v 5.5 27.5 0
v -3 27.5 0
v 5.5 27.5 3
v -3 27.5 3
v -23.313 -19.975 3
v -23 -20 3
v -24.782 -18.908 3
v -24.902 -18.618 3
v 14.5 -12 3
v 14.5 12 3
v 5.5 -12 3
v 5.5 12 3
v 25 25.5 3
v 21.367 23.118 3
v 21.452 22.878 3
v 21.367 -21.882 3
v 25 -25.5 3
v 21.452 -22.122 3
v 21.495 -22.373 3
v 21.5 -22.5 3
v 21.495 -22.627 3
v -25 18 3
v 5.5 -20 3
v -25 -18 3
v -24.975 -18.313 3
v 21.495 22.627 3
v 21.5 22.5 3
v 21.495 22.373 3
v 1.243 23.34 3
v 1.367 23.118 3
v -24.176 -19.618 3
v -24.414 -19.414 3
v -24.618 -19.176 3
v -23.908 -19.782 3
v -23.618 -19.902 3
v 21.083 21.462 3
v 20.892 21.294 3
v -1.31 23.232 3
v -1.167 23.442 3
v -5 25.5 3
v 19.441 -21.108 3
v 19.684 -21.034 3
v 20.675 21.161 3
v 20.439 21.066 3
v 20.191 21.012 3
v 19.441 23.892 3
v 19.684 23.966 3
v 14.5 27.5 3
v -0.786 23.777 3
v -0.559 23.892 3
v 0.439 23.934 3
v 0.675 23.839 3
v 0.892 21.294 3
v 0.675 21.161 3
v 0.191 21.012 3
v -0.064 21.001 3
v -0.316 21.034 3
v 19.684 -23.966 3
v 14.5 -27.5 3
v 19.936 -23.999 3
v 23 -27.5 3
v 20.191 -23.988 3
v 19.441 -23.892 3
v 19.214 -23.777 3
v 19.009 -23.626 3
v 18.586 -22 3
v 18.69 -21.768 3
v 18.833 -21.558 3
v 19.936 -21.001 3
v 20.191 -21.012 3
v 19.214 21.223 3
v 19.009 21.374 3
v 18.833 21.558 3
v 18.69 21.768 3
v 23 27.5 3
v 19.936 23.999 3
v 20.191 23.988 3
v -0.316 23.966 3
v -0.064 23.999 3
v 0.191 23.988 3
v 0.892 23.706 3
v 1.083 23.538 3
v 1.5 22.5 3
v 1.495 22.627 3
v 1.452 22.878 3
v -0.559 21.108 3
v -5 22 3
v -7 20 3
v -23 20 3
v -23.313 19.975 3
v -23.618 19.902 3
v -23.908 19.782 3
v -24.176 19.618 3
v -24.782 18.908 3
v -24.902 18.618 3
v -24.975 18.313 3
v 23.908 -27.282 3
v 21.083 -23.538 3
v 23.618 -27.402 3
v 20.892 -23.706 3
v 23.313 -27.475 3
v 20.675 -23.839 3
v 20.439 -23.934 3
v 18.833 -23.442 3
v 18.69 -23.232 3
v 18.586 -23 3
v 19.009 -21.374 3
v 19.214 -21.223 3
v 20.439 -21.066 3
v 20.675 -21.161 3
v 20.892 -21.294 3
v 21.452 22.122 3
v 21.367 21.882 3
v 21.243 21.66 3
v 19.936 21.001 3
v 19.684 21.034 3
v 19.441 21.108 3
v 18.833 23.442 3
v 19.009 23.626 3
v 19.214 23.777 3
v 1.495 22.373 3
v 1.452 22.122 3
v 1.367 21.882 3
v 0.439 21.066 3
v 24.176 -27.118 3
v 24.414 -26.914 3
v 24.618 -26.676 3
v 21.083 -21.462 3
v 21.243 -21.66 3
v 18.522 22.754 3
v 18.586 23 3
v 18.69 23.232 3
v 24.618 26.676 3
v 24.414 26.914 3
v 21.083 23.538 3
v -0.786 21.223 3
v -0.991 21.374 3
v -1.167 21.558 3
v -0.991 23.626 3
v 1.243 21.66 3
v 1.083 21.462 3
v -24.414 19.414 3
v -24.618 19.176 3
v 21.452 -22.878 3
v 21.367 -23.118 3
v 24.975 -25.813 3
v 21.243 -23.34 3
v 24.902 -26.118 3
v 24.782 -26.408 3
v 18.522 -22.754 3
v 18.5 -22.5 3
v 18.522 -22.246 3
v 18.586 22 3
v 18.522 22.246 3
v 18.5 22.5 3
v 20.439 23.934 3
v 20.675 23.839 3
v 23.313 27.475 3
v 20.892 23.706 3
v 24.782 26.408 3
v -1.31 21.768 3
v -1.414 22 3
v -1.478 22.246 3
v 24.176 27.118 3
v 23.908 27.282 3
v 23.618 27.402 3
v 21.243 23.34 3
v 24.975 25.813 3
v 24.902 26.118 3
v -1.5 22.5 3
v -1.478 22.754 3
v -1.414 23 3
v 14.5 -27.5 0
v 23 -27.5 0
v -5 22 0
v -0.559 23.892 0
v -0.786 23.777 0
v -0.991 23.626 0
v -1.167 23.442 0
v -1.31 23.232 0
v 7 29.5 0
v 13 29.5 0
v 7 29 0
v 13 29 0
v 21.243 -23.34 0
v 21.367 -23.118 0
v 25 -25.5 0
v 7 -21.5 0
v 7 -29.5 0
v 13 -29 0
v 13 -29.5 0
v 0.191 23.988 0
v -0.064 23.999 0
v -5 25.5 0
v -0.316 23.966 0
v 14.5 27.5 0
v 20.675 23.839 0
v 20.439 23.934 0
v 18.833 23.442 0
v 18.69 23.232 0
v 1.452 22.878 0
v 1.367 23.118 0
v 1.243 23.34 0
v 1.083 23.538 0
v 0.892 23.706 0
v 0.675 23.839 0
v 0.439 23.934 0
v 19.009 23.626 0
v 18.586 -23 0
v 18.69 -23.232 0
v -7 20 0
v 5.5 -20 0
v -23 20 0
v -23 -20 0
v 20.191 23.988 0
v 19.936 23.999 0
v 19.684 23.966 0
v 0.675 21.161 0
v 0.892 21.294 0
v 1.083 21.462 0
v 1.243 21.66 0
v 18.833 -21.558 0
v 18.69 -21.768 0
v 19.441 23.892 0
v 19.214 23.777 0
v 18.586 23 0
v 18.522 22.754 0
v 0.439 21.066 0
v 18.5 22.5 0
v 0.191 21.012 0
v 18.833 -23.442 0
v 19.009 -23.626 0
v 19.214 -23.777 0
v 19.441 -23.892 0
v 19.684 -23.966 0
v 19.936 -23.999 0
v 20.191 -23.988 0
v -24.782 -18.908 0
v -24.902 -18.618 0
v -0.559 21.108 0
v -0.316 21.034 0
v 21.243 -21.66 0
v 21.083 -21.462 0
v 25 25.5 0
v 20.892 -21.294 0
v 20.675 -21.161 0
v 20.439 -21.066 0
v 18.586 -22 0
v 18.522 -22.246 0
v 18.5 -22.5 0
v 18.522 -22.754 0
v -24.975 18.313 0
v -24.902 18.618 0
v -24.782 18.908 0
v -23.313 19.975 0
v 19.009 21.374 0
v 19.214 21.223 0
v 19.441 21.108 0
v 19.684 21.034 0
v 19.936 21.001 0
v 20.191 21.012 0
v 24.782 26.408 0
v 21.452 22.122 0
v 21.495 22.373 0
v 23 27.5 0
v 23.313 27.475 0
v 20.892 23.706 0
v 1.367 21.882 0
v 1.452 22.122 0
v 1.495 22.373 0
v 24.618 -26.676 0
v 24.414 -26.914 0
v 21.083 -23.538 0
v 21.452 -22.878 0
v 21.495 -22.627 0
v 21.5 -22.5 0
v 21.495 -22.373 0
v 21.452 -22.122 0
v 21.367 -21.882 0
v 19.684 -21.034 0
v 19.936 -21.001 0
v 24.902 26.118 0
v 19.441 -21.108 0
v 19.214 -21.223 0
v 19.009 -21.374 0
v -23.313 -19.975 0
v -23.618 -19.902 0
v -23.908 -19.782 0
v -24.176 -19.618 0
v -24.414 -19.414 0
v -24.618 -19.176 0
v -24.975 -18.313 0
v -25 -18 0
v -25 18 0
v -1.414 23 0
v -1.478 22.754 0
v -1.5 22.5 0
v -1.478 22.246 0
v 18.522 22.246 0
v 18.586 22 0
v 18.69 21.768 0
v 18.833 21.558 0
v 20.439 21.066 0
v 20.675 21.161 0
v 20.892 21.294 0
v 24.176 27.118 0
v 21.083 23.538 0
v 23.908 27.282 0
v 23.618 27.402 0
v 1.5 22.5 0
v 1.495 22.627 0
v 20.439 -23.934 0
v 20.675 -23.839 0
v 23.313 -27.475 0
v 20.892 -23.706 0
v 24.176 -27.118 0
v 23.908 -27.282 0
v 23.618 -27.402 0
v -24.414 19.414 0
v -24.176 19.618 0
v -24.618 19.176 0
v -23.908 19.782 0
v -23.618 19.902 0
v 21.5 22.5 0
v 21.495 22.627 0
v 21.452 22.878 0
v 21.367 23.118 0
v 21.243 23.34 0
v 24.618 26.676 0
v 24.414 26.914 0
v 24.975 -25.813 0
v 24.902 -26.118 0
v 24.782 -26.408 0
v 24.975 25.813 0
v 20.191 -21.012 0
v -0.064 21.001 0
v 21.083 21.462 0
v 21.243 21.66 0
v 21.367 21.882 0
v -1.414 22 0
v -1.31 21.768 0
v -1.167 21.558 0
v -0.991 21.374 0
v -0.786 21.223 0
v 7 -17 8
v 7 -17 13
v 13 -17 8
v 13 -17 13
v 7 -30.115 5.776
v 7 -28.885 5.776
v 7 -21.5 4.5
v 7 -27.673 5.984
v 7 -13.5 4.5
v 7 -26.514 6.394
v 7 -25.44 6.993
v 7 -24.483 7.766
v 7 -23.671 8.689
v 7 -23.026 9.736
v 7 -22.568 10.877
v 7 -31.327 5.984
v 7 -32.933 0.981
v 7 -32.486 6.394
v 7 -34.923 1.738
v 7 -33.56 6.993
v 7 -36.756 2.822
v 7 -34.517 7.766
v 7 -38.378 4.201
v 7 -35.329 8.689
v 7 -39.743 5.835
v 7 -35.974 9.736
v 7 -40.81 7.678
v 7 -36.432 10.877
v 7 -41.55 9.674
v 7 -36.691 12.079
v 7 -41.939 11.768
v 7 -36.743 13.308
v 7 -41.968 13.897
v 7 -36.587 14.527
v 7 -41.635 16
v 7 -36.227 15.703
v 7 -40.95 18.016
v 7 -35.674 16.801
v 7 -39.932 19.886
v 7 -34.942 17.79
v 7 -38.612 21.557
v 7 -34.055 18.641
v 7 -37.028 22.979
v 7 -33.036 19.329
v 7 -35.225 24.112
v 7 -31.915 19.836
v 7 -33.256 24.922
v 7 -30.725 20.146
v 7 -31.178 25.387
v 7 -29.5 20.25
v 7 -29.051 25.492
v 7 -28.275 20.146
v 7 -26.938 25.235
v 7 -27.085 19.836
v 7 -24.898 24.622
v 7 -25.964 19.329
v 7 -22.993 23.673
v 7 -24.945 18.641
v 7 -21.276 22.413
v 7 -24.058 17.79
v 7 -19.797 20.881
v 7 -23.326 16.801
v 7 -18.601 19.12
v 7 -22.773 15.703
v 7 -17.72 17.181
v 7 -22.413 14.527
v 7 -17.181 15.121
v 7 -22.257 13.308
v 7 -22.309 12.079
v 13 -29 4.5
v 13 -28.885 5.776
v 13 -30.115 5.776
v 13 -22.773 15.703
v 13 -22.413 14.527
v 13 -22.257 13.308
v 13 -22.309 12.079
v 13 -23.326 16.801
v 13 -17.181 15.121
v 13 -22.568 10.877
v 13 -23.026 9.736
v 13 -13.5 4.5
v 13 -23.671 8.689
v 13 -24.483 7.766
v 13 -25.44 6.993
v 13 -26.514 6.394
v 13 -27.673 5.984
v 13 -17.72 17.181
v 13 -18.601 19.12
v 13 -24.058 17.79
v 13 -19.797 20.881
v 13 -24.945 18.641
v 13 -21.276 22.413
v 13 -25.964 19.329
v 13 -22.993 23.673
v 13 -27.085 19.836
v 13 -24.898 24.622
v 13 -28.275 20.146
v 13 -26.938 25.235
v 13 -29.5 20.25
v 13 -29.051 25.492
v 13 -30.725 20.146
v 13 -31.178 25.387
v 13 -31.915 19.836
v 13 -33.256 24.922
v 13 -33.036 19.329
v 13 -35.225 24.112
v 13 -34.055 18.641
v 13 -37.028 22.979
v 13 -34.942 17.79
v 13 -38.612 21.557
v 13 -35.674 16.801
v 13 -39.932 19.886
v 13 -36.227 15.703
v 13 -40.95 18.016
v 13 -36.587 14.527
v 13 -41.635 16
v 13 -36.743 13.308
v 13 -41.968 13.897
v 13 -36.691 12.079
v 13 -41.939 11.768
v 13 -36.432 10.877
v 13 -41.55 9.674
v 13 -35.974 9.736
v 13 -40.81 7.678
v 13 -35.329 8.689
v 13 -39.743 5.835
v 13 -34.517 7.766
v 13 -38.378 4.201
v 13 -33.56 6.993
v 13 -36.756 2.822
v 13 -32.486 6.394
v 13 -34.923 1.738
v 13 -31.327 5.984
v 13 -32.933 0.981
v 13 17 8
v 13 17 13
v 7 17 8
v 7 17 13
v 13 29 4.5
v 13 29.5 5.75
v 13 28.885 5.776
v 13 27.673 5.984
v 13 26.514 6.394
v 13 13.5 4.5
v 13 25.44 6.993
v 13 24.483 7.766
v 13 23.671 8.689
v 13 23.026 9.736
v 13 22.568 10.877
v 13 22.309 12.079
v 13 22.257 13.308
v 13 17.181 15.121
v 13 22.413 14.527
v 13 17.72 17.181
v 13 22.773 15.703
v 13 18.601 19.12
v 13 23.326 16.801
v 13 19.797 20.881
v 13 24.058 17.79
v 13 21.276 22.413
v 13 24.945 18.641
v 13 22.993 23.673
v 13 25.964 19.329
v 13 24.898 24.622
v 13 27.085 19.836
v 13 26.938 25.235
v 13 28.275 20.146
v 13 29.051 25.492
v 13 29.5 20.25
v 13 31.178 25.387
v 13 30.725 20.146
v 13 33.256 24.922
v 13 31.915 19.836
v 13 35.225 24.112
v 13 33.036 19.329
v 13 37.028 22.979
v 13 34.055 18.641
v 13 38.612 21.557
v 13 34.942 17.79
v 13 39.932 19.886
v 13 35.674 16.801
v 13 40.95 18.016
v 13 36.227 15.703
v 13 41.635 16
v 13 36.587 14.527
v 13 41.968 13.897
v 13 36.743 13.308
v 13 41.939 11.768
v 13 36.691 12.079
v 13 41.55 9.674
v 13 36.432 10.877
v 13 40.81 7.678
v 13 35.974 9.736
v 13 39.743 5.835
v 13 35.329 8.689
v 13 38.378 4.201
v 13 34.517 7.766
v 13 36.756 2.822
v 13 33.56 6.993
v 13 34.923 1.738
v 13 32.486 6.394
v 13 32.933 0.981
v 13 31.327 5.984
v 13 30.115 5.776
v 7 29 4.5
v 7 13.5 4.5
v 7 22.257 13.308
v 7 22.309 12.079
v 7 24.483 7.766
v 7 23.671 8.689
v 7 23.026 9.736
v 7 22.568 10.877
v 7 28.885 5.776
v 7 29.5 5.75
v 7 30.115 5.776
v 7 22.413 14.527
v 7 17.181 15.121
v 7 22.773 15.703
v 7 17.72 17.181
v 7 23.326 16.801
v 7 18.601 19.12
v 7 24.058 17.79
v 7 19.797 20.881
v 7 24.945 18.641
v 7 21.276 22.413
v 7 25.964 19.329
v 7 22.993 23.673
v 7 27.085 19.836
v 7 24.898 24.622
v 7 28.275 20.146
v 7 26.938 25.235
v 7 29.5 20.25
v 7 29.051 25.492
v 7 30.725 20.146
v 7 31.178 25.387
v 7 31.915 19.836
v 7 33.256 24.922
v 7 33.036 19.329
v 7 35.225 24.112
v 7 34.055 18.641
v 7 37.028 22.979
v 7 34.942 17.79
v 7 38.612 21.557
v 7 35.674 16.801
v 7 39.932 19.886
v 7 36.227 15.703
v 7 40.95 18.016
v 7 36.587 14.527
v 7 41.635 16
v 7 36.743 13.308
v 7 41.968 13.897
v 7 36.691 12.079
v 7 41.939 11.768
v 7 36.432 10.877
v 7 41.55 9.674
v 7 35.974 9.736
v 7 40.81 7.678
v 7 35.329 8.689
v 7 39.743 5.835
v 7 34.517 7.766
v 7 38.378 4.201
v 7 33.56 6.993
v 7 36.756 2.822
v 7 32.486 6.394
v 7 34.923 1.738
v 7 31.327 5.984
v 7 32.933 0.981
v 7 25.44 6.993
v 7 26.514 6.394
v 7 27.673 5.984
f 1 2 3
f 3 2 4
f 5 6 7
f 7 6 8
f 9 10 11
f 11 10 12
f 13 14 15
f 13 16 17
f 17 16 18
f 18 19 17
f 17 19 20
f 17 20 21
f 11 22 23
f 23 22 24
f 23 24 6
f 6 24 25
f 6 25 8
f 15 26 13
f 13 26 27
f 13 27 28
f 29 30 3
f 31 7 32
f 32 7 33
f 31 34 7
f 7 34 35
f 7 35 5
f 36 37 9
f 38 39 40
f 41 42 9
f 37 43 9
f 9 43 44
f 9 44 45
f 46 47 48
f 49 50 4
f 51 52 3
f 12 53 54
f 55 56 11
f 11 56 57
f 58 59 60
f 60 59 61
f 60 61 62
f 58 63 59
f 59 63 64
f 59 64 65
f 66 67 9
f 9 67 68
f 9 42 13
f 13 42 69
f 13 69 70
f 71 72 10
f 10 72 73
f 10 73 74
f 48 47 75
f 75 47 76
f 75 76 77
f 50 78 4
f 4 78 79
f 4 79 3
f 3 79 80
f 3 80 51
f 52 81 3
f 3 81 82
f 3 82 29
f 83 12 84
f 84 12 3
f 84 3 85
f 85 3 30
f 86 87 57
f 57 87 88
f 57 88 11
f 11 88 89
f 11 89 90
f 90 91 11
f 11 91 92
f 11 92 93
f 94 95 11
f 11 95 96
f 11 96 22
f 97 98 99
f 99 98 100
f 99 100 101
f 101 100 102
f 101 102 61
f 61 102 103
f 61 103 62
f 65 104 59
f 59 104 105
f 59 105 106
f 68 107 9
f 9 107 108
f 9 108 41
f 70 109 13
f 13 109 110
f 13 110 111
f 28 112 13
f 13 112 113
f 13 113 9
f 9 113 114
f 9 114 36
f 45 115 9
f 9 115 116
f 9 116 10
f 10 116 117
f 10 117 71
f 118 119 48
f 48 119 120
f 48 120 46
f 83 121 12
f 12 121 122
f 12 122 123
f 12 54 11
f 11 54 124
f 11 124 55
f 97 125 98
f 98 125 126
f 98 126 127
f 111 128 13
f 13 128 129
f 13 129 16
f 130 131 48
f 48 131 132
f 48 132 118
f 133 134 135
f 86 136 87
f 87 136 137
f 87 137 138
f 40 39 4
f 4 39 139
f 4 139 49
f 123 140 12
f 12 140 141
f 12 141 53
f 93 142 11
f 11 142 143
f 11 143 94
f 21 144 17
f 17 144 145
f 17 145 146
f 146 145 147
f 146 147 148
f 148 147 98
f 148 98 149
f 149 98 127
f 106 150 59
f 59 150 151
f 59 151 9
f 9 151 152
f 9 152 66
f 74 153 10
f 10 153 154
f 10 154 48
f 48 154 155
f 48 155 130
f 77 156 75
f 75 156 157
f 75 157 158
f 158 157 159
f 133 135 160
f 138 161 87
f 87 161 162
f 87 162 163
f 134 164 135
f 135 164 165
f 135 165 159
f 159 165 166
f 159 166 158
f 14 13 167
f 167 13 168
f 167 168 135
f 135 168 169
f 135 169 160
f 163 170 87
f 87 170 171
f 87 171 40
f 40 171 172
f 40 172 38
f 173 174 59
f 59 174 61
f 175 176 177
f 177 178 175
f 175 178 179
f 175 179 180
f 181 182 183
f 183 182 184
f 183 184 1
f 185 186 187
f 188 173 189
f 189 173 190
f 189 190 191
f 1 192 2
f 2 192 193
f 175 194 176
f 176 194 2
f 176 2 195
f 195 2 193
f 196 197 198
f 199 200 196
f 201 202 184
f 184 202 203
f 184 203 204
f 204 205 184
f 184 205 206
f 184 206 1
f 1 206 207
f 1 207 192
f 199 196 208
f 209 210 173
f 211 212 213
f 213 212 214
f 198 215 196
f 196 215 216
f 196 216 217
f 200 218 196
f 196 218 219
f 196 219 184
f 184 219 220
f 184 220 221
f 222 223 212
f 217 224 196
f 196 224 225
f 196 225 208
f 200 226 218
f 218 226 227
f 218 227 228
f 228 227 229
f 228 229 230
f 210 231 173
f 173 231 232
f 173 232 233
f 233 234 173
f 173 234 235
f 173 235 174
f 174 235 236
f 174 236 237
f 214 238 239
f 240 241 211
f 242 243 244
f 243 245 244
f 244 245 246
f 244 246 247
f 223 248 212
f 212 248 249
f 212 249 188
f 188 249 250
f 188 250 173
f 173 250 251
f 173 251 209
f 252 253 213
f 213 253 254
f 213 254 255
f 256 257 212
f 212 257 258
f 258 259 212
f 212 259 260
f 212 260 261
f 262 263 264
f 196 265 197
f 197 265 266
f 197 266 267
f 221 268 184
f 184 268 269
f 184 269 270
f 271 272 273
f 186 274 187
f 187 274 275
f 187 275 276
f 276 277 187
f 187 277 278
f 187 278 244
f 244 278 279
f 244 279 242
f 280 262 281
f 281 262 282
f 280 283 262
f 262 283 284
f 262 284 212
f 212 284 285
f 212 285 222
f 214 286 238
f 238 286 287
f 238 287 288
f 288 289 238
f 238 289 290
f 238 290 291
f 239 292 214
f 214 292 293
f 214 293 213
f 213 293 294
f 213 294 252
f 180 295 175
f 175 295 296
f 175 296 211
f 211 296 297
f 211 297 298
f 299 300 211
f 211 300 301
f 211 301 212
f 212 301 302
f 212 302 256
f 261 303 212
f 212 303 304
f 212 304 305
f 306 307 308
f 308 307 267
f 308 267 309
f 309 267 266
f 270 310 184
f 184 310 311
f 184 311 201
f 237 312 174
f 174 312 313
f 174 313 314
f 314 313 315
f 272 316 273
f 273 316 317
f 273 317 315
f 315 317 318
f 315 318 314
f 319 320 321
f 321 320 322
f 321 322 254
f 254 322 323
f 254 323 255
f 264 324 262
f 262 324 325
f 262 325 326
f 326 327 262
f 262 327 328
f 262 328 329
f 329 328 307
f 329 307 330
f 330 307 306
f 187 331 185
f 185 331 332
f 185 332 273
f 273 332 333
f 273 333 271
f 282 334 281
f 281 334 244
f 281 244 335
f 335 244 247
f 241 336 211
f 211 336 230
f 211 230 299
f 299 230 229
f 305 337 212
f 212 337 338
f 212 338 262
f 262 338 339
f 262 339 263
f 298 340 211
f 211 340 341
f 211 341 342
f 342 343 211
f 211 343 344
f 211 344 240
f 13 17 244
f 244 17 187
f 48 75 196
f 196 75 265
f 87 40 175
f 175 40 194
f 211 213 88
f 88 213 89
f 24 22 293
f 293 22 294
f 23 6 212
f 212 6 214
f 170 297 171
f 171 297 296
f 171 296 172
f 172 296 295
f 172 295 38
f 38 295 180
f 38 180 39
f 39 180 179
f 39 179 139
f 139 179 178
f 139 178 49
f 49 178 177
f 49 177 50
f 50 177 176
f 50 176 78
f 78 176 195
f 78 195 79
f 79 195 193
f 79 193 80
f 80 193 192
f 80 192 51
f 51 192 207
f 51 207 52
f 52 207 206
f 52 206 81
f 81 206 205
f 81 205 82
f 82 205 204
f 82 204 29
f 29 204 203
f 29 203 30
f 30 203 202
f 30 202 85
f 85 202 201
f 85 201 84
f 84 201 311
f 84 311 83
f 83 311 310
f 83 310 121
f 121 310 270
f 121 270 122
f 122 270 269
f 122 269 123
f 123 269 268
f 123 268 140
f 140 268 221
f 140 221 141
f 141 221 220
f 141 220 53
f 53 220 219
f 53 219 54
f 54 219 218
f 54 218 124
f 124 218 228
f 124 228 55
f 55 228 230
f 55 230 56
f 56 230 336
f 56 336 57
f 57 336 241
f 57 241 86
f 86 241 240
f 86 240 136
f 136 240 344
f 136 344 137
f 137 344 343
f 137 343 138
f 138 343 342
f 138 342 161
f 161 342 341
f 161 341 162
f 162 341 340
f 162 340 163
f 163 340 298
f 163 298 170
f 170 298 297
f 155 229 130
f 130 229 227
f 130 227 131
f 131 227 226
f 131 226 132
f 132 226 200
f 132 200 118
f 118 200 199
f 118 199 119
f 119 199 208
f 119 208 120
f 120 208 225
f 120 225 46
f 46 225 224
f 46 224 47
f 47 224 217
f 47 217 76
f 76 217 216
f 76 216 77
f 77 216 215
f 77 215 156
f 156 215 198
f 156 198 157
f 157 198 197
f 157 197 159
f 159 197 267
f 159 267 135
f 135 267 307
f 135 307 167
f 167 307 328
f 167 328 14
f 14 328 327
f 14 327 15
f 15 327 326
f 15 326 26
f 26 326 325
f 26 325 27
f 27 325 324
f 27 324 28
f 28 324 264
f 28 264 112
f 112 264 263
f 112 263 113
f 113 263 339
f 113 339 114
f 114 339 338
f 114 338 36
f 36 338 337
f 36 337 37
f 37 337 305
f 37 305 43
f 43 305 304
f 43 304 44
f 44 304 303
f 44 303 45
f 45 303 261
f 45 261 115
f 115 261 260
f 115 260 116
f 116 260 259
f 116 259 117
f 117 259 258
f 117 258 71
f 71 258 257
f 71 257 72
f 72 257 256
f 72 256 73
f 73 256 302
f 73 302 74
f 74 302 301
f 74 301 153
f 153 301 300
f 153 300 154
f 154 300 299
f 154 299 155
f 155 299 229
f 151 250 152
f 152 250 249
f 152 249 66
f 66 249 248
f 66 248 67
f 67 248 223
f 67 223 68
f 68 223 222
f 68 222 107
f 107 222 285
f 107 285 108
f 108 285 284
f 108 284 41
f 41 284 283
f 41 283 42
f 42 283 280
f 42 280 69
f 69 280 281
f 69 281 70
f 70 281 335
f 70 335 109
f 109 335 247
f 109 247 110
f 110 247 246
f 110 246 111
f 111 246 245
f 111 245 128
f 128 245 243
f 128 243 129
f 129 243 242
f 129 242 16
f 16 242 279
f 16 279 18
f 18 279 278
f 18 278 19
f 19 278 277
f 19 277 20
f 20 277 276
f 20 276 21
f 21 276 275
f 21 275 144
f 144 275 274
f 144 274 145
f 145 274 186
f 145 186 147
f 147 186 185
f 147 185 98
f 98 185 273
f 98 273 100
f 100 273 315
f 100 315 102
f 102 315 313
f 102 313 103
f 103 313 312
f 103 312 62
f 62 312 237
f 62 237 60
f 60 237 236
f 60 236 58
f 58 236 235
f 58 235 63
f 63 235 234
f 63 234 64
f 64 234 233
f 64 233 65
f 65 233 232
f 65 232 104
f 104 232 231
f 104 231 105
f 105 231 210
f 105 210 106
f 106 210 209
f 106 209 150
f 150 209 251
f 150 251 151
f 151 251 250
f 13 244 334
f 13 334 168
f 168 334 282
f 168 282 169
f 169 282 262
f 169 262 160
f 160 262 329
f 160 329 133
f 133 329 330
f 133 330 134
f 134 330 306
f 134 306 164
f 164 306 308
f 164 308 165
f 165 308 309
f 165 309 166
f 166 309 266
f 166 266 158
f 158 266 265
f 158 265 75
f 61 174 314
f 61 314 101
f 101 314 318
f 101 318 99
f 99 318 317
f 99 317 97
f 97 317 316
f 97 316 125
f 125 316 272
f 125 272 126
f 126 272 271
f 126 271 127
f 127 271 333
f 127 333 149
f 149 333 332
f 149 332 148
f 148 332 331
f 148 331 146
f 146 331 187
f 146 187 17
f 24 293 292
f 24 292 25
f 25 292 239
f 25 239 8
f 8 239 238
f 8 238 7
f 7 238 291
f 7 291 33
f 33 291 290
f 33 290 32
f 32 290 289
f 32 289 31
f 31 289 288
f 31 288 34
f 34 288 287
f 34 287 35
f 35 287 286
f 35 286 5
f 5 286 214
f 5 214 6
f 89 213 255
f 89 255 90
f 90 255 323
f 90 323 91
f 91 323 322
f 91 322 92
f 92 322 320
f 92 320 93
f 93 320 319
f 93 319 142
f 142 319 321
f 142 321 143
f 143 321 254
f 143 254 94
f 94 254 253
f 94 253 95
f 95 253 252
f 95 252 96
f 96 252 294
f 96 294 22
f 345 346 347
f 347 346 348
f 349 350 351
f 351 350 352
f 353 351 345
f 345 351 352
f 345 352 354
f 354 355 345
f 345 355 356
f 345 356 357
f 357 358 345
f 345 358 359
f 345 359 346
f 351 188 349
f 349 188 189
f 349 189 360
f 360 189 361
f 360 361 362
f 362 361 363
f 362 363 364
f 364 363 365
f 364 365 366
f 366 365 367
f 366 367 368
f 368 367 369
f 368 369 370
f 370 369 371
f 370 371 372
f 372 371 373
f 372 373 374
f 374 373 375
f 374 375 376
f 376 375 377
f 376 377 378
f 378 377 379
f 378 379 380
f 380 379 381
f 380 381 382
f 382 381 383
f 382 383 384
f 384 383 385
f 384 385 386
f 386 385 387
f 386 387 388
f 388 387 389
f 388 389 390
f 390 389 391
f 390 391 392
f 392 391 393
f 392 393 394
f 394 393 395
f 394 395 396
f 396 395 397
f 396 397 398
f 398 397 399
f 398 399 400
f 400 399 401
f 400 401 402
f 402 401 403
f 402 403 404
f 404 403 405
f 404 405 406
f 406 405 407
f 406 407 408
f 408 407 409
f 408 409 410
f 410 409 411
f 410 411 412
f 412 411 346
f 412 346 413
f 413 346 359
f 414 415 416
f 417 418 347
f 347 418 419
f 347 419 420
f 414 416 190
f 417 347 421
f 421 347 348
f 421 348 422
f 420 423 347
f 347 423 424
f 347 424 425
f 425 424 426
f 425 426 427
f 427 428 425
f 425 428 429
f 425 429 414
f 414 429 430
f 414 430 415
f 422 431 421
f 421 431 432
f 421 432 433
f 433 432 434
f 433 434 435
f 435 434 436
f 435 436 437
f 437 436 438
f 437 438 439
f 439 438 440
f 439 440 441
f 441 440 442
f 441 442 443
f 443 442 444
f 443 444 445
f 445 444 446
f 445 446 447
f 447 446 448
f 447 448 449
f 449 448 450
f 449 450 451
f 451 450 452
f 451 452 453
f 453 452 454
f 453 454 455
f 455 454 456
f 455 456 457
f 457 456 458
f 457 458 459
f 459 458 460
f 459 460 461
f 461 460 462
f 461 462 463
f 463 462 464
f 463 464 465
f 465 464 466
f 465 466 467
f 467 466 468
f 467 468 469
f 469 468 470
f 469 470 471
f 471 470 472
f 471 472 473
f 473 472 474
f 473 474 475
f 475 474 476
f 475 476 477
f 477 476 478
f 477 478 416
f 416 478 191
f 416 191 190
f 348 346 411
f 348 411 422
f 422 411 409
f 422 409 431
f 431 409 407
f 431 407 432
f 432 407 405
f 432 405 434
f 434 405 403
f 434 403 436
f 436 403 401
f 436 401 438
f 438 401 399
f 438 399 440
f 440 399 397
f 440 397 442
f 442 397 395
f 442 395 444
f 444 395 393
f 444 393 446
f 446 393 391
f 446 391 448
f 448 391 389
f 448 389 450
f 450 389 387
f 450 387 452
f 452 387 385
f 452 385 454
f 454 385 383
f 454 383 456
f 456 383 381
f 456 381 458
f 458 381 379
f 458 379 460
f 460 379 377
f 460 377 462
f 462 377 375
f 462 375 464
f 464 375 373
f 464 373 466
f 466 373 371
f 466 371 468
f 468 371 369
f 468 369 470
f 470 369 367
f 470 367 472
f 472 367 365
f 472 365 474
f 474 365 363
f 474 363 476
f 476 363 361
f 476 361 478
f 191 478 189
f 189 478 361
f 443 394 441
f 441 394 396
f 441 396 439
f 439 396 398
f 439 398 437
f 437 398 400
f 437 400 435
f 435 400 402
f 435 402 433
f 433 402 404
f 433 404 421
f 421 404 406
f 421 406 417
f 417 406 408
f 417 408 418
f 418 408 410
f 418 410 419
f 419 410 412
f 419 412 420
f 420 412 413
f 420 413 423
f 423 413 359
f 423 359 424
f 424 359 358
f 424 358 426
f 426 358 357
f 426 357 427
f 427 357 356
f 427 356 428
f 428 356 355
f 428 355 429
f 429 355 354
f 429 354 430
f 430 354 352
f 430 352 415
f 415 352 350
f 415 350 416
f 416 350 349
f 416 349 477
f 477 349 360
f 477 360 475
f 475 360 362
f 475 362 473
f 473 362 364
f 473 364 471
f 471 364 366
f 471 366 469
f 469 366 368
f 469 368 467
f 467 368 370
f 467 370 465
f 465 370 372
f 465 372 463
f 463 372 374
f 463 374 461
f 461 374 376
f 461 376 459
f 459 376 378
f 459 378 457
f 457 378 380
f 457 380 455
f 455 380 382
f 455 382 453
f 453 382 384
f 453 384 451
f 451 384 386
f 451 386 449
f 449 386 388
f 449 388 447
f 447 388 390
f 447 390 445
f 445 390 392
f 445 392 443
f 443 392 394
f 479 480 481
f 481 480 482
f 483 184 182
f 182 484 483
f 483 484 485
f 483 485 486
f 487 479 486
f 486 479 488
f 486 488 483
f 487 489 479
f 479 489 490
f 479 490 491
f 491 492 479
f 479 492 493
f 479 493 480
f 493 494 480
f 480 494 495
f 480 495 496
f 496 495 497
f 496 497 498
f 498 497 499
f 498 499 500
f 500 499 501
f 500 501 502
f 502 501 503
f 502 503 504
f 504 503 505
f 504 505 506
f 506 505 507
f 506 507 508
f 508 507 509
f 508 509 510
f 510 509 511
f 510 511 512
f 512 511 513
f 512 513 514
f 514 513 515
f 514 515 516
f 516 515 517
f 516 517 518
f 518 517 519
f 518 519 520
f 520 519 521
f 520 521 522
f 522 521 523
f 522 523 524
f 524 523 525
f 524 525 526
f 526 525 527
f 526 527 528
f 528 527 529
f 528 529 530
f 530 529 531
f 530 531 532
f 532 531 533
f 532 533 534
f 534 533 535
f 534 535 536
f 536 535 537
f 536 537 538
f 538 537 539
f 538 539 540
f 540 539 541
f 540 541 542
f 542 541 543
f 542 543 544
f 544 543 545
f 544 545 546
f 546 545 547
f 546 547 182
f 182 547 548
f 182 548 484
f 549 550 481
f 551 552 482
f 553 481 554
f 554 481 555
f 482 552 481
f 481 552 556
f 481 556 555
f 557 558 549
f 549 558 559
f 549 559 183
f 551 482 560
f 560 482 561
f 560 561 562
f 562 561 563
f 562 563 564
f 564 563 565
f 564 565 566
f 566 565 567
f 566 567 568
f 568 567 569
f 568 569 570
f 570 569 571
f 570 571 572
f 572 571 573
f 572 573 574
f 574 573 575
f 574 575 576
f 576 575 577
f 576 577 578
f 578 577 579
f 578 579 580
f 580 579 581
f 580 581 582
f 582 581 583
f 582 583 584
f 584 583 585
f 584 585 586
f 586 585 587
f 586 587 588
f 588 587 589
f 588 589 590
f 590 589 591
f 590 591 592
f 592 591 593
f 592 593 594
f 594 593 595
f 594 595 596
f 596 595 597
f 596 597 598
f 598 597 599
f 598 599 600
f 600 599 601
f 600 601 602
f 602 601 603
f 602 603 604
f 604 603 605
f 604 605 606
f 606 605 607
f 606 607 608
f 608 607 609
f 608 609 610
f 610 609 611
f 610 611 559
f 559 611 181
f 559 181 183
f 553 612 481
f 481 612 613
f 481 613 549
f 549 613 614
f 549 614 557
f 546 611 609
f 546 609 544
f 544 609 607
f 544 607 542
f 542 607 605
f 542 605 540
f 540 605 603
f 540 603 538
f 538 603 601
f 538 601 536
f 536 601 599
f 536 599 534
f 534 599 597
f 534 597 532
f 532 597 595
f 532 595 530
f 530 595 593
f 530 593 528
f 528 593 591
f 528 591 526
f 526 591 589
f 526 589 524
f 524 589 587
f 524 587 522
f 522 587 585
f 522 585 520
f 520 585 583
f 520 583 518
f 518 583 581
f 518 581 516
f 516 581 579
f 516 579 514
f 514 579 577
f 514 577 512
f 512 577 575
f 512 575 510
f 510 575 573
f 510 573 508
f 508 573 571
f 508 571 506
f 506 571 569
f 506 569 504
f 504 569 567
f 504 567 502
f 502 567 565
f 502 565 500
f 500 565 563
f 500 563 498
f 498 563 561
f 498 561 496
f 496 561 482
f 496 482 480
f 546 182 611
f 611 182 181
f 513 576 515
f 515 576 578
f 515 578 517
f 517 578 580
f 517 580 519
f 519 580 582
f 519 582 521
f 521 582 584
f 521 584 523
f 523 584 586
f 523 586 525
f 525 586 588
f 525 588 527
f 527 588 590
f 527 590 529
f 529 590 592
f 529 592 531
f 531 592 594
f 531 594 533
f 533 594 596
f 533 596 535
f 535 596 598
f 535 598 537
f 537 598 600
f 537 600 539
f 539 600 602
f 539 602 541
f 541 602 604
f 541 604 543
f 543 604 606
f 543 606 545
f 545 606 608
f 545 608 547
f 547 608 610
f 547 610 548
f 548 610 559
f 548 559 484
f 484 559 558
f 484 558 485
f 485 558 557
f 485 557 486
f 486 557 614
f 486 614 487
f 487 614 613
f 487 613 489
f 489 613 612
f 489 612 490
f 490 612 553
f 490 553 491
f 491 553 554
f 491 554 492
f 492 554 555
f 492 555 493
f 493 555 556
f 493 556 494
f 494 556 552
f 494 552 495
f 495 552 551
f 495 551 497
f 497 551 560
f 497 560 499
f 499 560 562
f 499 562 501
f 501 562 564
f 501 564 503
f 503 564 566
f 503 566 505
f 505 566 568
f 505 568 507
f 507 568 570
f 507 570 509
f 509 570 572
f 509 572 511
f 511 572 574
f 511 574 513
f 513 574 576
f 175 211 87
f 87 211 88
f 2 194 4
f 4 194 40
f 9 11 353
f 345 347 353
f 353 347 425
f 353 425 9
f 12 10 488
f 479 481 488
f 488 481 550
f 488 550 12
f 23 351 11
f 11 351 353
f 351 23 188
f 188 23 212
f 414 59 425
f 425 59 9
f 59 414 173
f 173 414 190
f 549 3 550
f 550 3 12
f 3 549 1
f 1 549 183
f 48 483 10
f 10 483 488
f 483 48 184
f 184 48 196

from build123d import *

# Parameters (mm, degrees)
SKETCH1_R           = 1.5
BOSS_EXTRUDE1_DEPTH = 3
FILLET1_R           = 2
BOSS_EXTRUDE2_START = 7
SKETCH2_R           = 7.25
BOSS_EXTRUDE2_DEPTH = 6
CHAMFER1_SIZE       = 2
CHAMFER2_SIZE       = 5
CHAMFER3_SIZE       = 1.5


with BuildPart() as part:
    # Sketch1 → Boss-Extrude1 (new body)
    with BuildSketch(Plane.XY):
        Polygon((10, -27.5), (25, -27.5), (25, 27.5), (-5, 27.5), (-5, 20), (-25, 20), (-25, -20), (10, -20), align=None)
        with Locations((0, 22.5)):
            Circle(SKETCH1_R, mode=Mode.SUBTRACT)
        with Locations((20, 22.5)):
            Circle(SKETCH1_R, mode=Mode.SUBTRACT)
        with Locations((20, -22.5)):
            Circle(SKETCH1_R, mode=Mode.SUBTRACT)
    extrude(amount=BOSS_EXTRUDE1_DEPTH)

    # Fillet1
    fillet1_edges = [part.edges().sort_by_distance(p)[0] for p in [
        (25, -27.5, 1.5),
        (-25, -20, 1.5),
        (-25, 20, 1.5),
        (25, 27.5, 1.5),
    ]]
    fillet(fillet1_edges, radius=FILLET1_R)

    # Sketch2 → Boss-Extrude2 (add)
    # profile 1 of 2: a face of its own
    with BuildSketch(Plane(origin=(0, 0, 0), x_dir=(0, 0, -1), z_dir=(1, 0, 0)).offset(BOSS_EXTRUDE2_START)):
        with BuildLine():
            Line((-13, 17), (0, 17))
            Line((0, 17), (0, 29.500000036))
            Line((0, 29.500000036), (-0.98076924, 32.933379086))
            ThreePointArc((-0.98076924, 32.933379086), (-22.979159247, 37.027707534), (-13, 17))
        make_face()
        with Locations((-13, 29.5)):
            Circle(SKETCH2_R, mode=Mode.SUBTRACT)
    # profile 2 of 2: a face of its own
    with BuildSketch(Plane(origin=(0, 0, 0), x_dir=(0, 0, -1), z_dir=(1, 0, 0)).offset(BOSS_EXTRUDE2_START)):
        with BuildLine():
            Line((0, -29.500000036), (-0.98076924, -32.933379086))
            ThreePointArc((-0.98076924, -32.933379086), (-22.979159247, -37.027707534), (-13, -17))
            Line((-13, -17), (0, -17))
            Line((0, -17), (0, -29.500000036))
        make_face()
        with Locations(Location((-13, -29.5, 0), (0, 0, 180))):
            Circle(SKETCH2_R, mode=Mode.SUBTRACT)
    extrude(amount=BOSS_EXTRUDE2_DEPTH)

    # Chamfer1
    chamfer1_edges = [part.edges().sort_by_distance(p)[0] for p in [
        (-5, 20, 1.5),
        (-5, 27.5, 1.5),
    ]]
    chamfer(chamfer1_edges, length=CHAMFER1_SIZE)

    # Chamfer2
    chamfer2_edges = [part.edges().sort_by_distance(p)[0] for p in [
        (10, -17, 3),
        (10, 17, 3),
    ]]
    chamfer(chamfer2_edges, length=CHAMFER2_SIZE)

    # Chamfer3
    chamfer3_edges = [part.edges().sort_by_distance(p)[0] for p in [
        (13, -27.5, 1.5),
        (7, -20, 1.5),
        (13, -19.75, 3),
        (7, -16, 3),
        (7, 27.5, 1.5),
        (13, 27.5, 1.5),
        (7, 19.75, 3),
        (13, 19.75, 3),
    ]]
    chamfer(chamfer3_edges, length=CHAMFER3_SIZE)


solid = part.part
